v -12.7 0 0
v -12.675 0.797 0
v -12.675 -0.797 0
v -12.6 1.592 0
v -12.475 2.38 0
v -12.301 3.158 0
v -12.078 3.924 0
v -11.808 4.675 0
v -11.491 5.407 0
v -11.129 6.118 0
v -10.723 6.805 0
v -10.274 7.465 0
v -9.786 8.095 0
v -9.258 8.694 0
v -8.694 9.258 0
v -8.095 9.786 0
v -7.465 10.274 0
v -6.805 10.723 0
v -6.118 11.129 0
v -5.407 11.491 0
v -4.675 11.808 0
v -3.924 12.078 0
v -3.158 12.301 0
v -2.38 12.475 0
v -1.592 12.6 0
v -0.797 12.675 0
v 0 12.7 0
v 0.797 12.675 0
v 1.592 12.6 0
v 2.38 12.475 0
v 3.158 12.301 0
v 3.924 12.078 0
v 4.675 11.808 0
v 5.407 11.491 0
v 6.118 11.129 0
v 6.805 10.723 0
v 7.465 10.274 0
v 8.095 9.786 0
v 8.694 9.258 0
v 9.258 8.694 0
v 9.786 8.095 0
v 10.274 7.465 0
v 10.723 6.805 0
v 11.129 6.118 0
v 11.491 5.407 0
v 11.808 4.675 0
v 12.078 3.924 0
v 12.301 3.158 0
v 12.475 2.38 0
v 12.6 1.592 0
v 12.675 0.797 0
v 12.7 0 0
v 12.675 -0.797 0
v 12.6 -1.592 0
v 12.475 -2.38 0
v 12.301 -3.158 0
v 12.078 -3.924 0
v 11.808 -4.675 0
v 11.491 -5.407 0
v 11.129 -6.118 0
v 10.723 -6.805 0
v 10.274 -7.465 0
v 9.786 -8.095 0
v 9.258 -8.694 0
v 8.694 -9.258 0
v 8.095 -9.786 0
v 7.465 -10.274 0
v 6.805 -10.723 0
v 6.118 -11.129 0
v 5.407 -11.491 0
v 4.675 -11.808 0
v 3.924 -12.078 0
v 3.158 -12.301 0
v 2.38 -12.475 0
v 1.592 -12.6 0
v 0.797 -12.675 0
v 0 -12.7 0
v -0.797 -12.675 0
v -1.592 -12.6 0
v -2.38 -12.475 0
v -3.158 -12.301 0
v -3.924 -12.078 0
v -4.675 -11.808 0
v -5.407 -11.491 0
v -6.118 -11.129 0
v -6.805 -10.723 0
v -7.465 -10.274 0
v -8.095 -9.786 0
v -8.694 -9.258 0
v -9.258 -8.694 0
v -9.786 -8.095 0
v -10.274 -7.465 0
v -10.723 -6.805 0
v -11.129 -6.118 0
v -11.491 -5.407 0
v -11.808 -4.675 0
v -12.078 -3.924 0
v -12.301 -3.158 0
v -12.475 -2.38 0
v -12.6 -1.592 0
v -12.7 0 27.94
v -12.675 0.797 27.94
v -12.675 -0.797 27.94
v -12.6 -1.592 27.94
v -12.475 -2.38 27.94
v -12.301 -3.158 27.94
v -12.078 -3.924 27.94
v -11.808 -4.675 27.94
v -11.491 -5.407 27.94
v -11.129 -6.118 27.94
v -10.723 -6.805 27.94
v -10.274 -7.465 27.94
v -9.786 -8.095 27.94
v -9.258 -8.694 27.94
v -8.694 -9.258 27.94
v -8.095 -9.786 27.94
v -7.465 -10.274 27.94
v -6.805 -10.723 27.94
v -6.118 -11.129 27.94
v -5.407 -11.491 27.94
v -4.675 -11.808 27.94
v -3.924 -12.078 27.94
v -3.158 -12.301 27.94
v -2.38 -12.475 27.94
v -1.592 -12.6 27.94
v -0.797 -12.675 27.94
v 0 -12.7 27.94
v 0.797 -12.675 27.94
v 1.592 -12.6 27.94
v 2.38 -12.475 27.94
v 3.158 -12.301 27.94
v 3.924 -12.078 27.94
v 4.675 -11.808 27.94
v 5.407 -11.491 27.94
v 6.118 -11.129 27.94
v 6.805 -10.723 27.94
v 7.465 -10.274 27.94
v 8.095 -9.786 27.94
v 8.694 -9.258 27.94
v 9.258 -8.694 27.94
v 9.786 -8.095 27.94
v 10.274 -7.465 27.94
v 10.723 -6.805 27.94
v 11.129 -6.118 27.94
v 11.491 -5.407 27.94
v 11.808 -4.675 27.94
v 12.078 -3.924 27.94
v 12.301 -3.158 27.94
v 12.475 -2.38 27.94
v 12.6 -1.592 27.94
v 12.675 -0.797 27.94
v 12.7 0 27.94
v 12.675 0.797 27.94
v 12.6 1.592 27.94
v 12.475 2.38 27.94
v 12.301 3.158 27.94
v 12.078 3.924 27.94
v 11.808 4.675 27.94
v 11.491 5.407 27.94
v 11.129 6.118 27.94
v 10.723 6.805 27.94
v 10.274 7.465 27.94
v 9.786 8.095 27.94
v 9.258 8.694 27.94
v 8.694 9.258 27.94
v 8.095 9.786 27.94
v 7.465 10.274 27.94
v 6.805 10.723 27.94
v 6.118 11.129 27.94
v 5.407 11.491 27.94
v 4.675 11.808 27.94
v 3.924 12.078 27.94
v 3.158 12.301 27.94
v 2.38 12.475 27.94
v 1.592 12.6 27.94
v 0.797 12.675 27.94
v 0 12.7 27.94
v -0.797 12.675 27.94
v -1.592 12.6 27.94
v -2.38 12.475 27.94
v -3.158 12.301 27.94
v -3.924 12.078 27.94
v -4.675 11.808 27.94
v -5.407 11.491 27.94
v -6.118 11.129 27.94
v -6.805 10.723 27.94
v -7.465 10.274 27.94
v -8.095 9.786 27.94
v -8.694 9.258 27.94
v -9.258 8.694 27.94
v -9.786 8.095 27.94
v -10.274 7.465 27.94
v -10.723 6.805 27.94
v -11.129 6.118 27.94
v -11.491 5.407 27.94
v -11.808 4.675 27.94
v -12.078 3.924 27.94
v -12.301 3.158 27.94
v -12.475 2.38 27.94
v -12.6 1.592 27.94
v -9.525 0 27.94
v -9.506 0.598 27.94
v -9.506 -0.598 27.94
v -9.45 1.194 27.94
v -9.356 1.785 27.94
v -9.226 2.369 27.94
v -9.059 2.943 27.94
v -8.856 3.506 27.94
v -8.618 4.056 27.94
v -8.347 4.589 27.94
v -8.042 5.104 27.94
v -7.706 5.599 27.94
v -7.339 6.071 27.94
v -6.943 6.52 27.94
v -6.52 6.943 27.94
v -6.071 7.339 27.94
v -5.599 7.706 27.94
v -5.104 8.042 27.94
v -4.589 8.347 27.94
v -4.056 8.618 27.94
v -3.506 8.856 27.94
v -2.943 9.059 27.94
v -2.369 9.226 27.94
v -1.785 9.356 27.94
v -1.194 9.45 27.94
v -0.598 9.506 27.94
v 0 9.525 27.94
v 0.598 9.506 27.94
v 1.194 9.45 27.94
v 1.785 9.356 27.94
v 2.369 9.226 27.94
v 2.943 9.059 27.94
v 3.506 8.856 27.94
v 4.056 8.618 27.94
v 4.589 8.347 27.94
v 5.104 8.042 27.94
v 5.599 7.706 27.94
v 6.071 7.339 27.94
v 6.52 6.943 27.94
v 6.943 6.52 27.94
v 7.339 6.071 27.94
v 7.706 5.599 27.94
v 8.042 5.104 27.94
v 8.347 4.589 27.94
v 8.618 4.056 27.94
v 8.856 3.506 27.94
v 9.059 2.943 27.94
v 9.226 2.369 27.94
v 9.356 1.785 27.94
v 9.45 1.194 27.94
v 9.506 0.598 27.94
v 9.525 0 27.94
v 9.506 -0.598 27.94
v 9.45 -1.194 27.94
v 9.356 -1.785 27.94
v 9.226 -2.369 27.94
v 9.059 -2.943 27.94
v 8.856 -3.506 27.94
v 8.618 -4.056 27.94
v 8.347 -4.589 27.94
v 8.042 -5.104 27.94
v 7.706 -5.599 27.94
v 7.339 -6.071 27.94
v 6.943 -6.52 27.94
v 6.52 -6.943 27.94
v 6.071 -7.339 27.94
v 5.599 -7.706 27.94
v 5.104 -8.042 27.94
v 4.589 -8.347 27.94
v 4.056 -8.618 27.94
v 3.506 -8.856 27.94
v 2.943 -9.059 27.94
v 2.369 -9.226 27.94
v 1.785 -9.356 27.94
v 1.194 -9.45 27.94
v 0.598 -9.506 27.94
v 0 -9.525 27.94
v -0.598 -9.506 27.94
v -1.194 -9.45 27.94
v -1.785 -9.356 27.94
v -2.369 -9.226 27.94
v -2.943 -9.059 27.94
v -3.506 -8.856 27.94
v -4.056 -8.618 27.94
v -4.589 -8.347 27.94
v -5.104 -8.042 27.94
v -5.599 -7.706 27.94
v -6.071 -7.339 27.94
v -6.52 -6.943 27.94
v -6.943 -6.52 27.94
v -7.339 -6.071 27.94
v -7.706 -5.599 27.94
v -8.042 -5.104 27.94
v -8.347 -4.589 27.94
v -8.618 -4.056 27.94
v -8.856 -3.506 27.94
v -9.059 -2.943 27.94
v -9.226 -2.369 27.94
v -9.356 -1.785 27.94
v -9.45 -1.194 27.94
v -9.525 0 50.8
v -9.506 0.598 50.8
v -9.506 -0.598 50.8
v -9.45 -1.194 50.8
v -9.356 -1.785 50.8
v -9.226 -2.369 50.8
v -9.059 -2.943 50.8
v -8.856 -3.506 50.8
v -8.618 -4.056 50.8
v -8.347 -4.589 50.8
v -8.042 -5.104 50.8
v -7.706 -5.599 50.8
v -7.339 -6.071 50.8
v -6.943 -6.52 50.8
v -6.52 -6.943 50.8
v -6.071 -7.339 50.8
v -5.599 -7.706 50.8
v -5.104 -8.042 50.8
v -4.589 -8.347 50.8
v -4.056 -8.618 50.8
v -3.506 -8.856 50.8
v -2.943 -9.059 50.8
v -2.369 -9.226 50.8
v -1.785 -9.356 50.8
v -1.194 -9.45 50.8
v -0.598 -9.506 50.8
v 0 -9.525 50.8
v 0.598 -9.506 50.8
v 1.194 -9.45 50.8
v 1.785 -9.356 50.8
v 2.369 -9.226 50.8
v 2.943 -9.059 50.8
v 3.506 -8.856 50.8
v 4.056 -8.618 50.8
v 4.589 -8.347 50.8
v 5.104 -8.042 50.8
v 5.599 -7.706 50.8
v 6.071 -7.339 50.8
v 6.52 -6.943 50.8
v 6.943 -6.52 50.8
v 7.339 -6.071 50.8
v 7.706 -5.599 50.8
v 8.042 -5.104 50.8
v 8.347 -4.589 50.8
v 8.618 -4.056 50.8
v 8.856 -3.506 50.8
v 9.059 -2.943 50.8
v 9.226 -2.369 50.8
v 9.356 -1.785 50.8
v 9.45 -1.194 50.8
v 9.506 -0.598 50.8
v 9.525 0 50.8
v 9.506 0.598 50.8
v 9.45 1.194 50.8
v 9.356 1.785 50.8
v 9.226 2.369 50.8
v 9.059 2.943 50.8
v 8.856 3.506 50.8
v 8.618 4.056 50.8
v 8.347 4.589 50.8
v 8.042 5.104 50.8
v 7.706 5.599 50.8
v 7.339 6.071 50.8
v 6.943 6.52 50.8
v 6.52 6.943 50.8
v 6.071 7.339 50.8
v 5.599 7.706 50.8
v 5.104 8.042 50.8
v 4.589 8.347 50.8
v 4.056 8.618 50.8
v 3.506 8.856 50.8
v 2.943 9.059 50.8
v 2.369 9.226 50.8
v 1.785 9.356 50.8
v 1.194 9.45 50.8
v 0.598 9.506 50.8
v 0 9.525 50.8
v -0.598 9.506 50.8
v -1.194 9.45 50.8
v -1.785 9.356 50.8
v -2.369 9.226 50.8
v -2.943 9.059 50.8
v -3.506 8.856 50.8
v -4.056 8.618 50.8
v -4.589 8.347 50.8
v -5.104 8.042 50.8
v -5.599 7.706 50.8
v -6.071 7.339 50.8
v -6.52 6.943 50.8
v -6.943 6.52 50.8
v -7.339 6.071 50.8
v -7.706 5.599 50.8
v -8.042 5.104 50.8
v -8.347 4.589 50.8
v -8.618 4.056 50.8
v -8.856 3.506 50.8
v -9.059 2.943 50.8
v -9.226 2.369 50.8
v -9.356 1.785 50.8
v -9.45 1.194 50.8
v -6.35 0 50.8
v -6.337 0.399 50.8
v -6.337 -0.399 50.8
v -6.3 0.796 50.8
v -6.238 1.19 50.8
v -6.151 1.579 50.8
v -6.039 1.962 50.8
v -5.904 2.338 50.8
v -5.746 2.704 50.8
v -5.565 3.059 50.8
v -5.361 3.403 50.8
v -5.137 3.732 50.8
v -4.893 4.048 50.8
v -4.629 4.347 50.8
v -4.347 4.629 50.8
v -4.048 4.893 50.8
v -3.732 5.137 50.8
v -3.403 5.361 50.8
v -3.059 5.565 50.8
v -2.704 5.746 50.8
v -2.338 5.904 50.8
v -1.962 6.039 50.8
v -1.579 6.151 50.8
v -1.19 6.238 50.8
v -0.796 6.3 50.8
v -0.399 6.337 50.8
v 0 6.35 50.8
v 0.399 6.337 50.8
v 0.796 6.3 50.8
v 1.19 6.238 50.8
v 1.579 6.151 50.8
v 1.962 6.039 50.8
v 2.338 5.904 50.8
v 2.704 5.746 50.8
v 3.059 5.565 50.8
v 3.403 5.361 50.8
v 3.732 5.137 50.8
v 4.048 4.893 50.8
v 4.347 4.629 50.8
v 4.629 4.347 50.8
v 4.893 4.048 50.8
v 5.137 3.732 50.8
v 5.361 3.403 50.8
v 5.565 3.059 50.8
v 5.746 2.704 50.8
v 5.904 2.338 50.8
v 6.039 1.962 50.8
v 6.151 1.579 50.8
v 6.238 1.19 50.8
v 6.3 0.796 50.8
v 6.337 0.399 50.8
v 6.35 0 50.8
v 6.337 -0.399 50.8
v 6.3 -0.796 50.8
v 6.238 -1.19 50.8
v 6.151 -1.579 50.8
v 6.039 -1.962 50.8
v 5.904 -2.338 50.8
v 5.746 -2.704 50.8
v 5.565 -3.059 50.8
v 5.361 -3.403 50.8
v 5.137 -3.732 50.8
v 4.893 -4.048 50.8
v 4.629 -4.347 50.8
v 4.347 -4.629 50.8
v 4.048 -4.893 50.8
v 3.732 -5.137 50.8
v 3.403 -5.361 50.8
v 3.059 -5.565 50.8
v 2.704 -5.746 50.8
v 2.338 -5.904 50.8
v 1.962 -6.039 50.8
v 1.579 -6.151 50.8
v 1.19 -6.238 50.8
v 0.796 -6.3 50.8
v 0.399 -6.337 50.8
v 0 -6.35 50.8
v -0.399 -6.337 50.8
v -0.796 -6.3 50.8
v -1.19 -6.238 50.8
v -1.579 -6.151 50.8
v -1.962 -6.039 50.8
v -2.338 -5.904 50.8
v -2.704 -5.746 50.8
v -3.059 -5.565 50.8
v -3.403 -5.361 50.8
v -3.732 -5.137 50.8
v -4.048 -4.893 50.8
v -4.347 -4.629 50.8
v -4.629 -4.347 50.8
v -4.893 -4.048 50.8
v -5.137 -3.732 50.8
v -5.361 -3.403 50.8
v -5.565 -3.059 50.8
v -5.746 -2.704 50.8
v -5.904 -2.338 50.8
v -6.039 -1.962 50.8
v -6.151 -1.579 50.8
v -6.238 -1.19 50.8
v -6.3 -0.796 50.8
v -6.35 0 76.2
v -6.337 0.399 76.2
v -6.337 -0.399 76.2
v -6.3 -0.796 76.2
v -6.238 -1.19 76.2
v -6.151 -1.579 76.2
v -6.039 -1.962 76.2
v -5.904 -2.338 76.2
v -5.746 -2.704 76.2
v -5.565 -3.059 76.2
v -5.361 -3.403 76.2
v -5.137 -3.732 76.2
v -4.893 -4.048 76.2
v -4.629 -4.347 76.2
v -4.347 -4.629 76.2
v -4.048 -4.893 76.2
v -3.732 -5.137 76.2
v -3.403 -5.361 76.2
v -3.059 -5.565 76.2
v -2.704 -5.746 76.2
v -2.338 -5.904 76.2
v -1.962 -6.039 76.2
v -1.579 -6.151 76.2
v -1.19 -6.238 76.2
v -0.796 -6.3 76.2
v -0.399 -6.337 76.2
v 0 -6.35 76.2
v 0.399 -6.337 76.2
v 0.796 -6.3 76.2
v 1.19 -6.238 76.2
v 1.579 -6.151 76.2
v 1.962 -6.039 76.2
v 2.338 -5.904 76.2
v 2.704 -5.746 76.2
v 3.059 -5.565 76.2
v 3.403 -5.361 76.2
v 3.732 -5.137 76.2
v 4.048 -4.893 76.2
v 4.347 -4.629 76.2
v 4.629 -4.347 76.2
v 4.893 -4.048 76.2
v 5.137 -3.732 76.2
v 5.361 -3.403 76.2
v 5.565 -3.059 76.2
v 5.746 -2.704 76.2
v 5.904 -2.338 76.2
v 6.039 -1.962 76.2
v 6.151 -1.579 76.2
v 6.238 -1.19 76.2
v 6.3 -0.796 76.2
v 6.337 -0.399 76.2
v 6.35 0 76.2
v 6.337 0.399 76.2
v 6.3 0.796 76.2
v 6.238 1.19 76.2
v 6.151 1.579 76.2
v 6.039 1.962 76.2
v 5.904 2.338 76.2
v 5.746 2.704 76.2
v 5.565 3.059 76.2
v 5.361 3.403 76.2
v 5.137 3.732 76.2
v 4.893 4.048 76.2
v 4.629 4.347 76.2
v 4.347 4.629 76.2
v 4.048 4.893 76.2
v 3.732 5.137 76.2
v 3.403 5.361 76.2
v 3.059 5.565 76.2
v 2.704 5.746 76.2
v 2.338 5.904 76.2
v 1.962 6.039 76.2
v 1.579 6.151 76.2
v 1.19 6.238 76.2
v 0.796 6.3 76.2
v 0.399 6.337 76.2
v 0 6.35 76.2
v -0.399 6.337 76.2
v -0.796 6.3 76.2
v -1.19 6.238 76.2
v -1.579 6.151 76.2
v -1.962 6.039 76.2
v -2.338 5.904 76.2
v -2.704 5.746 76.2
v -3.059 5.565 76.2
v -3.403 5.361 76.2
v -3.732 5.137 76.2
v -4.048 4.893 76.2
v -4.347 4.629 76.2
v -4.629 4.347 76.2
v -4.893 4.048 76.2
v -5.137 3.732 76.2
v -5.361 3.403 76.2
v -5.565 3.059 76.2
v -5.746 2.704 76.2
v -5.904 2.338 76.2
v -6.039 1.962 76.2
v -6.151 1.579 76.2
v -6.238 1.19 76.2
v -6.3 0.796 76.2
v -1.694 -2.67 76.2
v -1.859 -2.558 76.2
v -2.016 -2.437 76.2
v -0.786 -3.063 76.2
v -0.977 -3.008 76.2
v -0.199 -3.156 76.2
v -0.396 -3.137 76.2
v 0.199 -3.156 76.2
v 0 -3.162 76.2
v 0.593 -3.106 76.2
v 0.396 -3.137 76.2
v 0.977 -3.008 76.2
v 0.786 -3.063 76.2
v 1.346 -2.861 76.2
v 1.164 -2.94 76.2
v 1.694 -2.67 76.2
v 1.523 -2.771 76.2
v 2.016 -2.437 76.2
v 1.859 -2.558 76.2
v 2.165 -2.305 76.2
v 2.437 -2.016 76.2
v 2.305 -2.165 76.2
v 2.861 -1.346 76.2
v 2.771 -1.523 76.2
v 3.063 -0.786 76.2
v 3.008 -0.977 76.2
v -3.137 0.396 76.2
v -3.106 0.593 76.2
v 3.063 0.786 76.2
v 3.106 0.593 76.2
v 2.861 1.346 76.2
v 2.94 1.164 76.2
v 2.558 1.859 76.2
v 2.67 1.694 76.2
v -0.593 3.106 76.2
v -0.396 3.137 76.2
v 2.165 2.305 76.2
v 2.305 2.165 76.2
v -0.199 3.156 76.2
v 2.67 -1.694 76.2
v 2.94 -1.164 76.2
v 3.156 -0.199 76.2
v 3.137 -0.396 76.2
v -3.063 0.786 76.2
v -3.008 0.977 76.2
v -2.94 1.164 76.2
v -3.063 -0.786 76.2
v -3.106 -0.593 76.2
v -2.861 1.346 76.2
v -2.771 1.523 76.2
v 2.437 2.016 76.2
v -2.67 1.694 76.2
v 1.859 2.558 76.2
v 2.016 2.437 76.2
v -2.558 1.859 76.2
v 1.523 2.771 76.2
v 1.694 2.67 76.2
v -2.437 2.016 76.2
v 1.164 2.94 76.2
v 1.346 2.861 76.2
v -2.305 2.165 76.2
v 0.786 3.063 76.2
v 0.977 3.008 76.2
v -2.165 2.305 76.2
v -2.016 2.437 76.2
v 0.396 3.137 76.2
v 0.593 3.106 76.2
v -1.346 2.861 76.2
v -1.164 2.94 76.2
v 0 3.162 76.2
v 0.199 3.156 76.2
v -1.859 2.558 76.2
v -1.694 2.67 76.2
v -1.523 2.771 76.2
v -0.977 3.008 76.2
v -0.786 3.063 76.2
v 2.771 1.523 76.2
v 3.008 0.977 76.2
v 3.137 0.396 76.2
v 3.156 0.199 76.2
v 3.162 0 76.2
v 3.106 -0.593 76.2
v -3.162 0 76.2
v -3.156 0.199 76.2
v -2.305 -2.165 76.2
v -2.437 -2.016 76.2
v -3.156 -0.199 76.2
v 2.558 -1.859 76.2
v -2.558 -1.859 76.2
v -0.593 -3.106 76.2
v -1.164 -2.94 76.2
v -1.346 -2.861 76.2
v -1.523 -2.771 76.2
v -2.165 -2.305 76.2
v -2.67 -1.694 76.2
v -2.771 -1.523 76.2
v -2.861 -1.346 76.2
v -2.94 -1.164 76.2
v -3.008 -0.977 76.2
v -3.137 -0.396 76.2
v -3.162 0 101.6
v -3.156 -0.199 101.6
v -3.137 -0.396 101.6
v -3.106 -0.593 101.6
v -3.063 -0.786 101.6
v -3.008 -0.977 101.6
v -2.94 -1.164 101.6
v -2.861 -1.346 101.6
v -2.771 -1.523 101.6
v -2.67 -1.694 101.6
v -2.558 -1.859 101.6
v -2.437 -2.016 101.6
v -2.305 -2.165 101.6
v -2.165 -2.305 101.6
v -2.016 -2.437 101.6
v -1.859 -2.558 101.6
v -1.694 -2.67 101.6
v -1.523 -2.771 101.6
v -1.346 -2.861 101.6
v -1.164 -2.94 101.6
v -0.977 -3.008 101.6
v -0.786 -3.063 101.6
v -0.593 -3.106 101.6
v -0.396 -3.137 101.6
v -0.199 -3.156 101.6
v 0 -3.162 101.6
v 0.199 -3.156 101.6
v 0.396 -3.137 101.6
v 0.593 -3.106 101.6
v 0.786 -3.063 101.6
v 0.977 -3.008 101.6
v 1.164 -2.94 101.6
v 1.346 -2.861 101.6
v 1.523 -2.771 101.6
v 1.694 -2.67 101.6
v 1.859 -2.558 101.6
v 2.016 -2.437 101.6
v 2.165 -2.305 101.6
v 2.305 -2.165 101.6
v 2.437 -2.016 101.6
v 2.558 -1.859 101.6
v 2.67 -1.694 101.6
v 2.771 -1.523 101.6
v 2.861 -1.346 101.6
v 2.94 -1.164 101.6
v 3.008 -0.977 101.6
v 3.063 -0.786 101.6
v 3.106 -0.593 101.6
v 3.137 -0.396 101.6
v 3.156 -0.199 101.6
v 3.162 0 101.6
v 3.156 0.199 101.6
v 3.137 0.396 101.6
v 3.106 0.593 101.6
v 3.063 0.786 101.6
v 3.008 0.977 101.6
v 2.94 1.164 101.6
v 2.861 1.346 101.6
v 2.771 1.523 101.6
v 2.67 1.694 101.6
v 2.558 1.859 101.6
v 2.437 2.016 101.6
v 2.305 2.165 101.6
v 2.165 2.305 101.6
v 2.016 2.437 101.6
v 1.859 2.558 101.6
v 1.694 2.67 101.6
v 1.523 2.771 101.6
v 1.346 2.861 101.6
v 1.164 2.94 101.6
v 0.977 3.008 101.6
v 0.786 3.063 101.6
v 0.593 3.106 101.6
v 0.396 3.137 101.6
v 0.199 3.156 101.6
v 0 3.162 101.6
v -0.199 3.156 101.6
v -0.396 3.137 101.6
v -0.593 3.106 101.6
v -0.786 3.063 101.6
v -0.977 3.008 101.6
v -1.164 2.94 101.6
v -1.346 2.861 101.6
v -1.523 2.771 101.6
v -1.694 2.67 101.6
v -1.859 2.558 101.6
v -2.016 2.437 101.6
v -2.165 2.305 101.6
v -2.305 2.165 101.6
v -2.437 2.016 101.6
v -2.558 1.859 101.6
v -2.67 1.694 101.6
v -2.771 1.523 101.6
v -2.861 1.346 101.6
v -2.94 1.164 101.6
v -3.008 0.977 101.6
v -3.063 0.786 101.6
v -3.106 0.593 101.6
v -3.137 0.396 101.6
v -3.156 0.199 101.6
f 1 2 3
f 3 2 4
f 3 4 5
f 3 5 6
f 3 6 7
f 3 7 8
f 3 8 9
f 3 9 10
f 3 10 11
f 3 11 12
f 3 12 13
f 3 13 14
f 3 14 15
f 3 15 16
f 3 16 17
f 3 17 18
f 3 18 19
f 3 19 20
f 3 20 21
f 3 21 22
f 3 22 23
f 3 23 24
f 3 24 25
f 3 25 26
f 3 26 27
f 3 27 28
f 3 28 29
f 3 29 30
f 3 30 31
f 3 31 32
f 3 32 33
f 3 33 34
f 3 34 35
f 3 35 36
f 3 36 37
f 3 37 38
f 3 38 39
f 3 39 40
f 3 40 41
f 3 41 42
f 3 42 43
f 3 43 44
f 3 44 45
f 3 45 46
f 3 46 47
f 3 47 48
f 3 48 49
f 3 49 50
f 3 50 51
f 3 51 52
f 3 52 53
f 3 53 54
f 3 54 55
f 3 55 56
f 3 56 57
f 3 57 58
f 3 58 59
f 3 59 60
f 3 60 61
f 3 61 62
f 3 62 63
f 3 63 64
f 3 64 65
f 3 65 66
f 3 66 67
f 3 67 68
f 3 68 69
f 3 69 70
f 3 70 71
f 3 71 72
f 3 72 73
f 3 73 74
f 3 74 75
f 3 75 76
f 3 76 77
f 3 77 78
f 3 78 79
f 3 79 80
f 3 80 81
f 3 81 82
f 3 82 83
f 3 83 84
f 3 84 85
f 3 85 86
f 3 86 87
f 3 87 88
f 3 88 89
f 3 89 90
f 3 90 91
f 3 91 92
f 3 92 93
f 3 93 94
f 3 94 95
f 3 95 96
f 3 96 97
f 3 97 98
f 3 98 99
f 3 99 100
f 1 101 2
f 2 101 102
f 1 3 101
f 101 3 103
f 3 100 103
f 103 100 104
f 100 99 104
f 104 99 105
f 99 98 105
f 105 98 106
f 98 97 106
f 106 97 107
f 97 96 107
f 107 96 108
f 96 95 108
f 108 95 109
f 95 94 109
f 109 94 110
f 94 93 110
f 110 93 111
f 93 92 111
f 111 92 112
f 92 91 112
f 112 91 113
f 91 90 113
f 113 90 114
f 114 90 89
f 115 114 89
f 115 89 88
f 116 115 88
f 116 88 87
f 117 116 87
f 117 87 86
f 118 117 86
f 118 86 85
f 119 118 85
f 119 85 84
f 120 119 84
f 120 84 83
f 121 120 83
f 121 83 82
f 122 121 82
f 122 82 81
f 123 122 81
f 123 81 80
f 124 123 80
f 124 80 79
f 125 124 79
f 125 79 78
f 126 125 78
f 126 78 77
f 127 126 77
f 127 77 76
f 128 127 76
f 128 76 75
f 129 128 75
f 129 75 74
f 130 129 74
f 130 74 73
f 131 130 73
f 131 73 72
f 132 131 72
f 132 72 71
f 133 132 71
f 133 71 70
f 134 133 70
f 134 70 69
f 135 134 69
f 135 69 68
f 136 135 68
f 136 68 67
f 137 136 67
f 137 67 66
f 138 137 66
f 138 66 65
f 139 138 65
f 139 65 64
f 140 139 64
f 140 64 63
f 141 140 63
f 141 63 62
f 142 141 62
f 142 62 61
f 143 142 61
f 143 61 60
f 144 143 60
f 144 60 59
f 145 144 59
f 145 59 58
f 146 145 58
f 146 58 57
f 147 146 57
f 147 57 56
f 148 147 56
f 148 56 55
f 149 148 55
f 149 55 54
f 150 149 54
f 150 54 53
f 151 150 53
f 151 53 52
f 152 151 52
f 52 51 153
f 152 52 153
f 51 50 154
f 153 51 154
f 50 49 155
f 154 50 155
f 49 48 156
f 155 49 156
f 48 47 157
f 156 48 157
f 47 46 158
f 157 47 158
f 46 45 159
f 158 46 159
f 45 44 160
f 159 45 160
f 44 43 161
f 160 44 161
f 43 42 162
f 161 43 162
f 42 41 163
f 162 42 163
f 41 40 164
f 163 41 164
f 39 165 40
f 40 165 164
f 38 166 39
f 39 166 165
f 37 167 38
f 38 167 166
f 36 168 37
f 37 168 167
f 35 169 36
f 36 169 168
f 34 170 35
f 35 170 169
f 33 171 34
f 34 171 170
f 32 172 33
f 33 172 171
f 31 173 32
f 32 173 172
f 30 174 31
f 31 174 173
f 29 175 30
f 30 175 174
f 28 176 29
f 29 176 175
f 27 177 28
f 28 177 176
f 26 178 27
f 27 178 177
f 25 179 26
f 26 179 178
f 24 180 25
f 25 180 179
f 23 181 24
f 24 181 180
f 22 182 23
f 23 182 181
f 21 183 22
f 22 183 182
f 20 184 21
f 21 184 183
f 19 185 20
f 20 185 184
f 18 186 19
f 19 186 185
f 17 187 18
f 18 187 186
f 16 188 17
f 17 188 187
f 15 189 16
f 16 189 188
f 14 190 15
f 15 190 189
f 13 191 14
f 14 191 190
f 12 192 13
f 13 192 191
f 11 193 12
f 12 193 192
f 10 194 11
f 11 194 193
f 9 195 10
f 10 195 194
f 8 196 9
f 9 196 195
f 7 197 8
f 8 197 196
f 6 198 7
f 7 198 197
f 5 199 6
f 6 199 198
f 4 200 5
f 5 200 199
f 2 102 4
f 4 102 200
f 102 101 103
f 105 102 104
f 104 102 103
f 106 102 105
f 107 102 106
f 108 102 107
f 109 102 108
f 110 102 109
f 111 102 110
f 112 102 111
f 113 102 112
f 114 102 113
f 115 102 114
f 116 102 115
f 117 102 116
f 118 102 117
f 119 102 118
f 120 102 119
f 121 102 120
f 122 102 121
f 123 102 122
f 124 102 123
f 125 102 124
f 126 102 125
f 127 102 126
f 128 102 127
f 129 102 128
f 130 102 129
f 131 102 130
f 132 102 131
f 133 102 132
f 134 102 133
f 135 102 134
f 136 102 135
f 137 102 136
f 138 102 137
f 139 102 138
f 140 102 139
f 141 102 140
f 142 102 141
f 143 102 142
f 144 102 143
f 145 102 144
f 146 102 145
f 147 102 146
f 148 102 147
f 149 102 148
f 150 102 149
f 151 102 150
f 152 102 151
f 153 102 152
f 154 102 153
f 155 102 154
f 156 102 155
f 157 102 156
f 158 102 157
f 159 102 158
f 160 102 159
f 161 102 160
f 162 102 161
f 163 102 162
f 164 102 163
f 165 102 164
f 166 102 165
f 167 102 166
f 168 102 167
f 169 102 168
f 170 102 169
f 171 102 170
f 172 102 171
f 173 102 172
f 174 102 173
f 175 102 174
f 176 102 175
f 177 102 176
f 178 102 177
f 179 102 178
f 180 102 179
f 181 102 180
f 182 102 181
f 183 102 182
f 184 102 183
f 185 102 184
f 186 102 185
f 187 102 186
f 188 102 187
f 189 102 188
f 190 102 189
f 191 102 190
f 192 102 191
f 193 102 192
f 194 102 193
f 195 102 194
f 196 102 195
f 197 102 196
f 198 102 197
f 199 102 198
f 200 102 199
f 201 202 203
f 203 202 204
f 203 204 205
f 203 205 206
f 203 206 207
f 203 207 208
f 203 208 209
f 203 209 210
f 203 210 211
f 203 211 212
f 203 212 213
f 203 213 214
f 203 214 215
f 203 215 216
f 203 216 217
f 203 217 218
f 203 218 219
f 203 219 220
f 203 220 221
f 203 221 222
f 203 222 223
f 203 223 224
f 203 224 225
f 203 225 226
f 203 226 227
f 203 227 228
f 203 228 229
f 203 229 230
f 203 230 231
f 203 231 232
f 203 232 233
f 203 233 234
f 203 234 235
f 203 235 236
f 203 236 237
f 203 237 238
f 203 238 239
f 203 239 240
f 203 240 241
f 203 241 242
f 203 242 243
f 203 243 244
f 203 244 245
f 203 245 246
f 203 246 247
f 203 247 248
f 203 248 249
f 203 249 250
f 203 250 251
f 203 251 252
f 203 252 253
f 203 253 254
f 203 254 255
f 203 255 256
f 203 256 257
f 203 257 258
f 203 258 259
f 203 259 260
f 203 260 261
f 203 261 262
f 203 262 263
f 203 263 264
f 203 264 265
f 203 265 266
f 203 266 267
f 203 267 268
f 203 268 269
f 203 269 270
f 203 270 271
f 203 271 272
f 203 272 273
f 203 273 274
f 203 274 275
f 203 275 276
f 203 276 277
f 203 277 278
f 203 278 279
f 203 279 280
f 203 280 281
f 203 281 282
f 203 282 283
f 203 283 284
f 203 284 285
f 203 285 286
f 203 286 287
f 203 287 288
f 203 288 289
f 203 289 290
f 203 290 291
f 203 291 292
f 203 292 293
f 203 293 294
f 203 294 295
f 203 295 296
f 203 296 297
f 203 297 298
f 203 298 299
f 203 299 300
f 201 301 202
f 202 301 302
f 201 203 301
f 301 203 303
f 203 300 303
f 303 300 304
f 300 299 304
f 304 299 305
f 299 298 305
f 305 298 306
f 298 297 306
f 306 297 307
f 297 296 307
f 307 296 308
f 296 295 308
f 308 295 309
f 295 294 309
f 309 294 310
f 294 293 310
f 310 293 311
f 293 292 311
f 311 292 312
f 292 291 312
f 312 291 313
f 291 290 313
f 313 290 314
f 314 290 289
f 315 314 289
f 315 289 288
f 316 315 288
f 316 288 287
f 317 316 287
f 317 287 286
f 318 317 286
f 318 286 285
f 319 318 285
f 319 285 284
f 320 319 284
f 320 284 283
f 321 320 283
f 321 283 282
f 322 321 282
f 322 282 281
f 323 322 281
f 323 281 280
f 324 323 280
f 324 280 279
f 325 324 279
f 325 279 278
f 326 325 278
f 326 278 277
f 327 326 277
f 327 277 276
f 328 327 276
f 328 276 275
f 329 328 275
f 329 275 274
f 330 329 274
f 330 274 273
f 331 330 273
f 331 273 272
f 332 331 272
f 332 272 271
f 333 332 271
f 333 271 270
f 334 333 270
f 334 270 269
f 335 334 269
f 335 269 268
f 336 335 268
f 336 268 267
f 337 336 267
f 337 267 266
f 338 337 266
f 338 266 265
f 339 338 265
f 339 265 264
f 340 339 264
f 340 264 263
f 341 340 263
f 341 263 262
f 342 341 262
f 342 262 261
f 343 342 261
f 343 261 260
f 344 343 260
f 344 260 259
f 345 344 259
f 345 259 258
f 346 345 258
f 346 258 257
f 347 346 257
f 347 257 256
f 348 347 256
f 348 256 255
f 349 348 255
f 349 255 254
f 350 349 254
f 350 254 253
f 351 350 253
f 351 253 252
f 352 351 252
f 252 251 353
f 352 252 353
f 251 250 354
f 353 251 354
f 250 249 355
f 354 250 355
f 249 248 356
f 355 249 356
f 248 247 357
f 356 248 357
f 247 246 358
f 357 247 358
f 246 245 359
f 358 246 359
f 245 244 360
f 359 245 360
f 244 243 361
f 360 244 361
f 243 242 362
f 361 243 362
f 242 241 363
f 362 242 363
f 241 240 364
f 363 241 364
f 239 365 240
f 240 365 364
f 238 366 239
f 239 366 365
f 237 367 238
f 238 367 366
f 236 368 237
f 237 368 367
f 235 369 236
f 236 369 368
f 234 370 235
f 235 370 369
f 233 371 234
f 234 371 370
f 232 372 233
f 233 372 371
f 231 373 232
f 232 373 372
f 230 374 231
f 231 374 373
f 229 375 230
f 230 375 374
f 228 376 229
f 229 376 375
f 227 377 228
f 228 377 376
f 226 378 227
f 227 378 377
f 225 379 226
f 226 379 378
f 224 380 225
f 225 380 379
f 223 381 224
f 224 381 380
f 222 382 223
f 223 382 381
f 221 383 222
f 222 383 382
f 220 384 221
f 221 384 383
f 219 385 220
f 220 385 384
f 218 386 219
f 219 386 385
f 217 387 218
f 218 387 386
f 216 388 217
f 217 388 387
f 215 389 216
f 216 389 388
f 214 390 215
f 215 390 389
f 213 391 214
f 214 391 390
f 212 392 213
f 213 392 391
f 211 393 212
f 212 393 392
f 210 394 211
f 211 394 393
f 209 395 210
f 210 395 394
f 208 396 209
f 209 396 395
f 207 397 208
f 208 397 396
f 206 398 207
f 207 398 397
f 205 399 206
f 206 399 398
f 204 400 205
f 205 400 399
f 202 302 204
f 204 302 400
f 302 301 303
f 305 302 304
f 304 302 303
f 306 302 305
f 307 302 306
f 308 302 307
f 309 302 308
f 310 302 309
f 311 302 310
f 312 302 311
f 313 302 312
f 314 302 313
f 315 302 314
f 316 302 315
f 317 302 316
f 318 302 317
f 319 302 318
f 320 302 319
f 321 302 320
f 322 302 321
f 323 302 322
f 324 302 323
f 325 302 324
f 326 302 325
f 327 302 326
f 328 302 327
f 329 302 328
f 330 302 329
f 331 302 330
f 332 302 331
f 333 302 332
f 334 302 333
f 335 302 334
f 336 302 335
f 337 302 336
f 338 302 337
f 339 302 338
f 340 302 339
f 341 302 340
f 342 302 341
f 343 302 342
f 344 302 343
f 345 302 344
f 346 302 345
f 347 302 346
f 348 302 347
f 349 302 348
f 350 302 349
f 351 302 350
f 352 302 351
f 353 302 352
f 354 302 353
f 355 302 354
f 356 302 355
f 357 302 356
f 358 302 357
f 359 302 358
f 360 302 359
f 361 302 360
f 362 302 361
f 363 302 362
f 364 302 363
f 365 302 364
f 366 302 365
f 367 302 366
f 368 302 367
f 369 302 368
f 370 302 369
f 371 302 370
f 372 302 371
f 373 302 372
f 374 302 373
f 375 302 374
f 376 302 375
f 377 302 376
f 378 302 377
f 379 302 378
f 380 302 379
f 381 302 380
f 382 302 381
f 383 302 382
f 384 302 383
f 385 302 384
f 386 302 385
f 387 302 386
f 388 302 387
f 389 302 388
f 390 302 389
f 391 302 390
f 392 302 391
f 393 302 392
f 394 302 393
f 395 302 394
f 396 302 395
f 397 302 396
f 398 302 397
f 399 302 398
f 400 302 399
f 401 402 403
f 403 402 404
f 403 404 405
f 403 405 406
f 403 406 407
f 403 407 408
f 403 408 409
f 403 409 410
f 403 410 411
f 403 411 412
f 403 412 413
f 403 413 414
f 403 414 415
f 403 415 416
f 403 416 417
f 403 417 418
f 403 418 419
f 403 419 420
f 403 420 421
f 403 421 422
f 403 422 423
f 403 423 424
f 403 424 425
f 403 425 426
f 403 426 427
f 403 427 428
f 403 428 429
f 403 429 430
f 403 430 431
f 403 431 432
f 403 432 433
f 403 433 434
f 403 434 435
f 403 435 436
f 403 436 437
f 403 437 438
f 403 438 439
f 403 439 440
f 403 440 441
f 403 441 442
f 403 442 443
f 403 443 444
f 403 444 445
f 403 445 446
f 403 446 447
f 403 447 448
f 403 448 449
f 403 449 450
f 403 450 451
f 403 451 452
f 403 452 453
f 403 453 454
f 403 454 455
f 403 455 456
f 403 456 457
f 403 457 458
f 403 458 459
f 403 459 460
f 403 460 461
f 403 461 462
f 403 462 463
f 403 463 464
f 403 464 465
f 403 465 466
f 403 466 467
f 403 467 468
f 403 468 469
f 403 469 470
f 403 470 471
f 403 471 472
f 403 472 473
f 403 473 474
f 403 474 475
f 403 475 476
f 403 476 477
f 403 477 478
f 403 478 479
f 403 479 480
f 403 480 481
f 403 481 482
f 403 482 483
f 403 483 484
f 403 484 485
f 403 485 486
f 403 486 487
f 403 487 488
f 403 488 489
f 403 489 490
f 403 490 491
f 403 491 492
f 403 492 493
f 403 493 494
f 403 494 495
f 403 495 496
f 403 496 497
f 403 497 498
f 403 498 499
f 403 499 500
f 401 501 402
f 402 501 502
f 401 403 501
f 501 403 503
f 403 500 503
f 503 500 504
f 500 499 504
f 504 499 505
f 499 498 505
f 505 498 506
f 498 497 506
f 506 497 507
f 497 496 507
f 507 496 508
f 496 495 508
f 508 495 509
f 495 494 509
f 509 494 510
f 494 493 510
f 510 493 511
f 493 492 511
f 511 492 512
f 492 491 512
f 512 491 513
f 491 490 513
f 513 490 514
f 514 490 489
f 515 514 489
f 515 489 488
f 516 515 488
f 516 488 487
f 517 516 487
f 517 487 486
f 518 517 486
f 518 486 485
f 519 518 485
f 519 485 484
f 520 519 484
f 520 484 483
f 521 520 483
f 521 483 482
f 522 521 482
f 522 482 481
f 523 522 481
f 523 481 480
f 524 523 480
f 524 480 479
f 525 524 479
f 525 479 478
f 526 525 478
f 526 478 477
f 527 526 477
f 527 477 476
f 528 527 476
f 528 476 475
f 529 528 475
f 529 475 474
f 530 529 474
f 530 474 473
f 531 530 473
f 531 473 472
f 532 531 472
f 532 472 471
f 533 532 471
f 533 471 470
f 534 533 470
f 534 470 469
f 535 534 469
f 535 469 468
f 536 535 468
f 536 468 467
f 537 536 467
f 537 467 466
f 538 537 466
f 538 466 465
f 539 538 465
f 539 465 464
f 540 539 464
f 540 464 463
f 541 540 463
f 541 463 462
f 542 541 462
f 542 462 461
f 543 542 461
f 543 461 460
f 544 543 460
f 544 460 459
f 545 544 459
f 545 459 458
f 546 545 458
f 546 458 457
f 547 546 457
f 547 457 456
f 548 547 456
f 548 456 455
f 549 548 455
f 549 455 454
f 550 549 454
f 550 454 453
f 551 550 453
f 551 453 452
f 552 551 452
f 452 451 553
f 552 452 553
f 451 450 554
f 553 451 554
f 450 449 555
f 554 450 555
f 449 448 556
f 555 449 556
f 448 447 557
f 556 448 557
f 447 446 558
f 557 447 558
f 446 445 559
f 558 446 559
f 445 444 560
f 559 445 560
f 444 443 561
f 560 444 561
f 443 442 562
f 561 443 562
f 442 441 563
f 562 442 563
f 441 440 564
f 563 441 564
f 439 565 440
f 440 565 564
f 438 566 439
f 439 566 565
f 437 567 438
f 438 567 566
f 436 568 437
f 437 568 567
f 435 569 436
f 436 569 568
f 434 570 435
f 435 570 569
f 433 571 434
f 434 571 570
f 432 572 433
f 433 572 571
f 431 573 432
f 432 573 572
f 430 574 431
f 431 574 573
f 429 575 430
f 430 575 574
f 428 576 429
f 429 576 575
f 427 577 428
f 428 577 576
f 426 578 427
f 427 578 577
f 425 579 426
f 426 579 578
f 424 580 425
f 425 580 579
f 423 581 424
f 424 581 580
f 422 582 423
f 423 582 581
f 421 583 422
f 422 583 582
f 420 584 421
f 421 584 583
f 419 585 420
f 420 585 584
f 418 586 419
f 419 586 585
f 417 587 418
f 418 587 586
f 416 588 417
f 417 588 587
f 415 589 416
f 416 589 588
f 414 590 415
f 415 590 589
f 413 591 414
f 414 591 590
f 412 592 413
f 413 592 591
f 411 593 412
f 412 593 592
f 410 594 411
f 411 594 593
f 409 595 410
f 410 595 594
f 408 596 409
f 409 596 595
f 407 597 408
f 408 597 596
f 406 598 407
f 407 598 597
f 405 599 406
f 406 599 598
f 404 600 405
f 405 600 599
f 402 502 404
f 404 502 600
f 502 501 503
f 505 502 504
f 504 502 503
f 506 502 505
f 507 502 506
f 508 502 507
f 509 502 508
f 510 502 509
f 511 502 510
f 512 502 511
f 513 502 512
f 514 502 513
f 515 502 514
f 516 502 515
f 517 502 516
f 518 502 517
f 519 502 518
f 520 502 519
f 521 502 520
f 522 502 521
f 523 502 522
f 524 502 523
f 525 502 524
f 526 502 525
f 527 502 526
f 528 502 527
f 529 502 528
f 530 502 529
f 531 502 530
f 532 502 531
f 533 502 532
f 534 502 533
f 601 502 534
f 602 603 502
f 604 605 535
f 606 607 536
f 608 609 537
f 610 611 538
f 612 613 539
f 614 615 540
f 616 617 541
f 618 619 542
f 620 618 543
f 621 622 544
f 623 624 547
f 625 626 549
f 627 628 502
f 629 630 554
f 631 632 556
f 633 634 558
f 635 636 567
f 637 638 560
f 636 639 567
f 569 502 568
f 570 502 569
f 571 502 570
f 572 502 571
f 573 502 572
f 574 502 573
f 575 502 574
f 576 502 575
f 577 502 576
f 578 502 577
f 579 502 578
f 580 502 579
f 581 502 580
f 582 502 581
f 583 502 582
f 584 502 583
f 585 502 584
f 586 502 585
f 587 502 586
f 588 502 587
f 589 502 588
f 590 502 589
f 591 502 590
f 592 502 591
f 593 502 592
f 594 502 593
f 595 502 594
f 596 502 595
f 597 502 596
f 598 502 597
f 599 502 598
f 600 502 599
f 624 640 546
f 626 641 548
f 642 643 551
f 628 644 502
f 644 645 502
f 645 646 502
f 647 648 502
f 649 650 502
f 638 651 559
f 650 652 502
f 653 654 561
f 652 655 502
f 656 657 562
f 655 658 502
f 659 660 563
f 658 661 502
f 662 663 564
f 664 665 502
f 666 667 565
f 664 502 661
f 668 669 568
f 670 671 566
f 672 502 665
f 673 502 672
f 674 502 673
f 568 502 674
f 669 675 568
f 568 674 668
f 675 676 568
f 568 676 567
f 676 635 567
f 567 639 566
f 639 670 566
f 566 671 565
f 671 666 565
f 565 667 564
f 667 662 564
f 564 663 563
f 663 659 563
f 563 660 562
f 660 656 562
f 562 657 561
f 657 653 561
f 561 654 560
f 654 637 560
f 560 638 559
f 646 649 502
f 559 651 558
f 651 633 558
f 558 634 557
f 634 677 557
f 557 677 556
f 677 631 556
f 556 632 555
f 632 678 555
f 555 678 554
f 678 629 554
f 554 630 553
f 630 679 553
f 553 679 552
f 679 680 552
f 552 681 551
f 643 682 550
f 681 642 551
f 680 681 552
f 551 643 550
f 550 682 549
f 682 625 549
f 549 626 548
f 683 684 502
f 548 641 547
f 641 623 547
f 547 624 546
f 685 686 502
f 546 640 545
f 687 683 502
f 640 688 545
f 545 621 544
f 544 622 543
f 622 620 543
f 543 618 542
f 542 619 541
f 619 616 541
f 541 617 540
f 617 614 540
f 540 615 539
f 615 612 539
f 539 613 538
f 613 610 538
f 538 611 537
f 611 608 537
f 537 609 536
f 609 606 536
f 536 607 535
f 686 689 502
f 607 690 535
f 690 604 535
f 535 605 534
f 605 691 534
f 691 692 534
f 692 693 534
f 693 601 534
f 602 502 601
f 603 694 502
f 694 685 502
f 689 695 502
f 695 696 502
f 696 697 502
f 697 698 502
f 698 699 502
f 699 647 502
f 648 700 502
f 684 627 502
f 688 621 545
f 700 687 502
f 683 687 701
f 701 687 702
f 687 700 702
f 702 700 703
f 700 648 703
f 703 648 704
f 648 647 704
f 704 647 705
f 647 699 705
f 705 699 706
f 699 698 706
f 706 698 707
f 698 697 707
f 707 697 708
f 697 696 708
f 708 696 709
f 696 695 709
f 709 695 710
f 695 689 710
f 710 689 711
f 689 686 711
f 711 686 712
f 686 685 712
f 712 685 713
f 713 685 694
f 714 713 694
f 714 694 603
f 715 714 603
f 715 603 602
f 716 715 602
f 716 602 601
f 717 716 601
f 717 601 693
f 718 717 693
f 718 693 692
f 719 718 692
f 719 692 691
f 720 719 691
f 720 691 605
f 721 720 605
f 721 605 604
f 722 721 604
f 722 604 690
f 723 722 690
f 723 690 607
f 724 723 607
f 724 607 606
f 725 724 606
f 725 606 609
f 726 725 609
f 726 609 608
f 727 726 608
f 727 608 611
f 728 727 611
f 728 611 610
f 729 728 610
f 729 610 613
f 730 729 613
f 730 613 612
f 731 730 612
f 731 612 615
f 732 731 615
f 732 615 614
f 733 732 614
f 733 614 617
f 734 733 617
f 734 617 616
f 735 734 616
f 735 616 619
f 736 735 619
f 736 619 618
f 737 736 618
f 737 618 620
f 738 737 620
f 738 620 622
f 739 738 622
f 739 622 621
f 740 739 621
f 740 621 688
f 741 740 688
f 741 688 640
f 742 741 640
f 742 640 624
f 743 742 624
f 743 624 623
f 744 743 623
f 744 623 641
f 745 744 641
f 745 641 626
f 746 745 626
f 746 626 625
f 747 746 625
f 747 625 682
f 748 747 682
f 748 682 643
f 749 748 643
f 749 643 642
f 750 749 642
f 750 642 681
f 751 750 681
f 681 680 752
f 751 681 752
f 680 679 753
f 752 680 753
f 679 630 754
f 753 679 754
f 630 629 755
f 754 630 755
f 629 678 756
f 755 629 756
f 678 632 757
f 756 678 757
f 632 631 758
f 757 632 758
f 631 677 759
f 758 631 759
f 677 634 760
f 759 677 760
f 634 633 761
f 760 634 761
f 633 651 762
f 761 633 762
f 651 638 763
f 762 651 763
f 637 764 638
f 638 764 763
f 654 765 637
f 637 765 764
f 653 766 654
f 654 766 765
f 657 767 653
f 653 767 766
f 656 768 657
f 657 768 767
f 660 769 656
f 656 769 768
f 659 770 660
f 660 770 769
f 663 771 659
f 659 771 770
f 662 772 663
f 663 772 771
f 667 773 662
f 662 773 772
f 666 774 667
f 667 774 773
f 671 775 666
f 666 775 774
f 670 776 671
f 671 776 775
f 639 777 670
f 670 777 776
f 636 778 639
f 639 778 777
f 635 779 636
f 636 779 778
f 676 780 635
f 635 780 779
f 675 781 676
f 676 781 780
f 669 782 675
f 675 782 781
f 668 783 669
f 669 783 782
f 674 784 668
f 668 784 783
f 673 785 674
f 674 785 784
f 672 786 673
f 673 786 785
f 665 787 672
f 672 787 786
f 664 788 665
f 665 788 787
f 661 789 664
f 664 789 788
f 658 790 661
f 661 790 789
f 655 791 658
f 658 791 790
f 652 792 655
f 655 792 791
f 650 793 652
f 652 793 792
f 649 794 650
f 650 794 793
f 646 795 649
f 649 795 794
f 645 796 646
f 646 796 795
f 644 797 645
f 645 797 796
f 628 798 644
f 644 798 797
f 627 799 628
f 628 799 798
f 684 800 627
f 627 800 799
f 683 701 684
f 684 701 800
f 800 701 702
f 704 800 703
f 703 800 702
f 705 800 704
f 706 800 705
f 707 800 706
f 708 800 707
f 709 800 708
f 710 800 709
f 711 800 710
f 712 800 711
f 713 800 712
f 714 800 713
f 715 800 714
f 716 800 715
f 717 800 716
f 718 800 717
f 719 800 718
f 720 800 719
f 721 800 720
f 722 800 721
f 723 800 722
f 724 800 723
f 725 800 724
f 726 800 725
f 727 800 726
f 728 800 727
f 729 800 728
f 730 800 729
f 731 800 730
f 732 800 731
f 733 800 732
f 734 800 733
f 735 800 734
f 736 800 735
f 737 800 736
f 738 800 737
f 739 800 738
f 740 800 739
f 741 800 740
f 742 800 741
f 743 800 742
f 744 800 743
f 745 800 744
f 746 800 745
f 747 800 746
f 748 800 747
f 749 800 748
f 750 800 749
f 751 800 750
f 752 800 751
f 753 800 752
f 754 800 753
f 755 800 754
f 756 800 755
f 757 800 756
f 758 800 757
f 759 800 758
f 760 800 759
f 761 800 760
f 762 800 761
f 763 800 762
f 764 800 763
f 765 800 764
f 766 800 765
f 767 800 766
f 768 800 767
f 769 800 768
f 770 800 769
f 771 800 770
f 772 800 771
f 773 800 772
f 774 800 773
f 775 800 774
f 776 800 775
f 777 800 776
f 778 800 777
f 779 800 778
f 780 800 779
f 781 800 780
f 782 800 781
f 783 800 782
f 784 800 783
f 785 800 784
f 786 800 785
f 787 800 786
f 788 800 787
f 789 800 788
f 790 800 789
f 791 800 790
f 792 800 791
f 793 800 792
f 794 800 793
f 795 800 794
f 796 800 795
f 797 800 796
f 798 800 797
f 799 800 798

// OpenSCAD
$fn = 100;		// Set rendering quality.
scale(v=25.4){	// scale from mm to inches.

cylinder(h=1.100, r=.5);
translate([0,0,1.1])		{
	cylinder(h=.9, r=.75/2);
	translate([0,0,.9])	{
		cylinder(h=1, r=.5/2);
		translate([0,0,1])	{
			cylinder(h=1, r=0.249/2);
		}
	}
}
}	// end scale
